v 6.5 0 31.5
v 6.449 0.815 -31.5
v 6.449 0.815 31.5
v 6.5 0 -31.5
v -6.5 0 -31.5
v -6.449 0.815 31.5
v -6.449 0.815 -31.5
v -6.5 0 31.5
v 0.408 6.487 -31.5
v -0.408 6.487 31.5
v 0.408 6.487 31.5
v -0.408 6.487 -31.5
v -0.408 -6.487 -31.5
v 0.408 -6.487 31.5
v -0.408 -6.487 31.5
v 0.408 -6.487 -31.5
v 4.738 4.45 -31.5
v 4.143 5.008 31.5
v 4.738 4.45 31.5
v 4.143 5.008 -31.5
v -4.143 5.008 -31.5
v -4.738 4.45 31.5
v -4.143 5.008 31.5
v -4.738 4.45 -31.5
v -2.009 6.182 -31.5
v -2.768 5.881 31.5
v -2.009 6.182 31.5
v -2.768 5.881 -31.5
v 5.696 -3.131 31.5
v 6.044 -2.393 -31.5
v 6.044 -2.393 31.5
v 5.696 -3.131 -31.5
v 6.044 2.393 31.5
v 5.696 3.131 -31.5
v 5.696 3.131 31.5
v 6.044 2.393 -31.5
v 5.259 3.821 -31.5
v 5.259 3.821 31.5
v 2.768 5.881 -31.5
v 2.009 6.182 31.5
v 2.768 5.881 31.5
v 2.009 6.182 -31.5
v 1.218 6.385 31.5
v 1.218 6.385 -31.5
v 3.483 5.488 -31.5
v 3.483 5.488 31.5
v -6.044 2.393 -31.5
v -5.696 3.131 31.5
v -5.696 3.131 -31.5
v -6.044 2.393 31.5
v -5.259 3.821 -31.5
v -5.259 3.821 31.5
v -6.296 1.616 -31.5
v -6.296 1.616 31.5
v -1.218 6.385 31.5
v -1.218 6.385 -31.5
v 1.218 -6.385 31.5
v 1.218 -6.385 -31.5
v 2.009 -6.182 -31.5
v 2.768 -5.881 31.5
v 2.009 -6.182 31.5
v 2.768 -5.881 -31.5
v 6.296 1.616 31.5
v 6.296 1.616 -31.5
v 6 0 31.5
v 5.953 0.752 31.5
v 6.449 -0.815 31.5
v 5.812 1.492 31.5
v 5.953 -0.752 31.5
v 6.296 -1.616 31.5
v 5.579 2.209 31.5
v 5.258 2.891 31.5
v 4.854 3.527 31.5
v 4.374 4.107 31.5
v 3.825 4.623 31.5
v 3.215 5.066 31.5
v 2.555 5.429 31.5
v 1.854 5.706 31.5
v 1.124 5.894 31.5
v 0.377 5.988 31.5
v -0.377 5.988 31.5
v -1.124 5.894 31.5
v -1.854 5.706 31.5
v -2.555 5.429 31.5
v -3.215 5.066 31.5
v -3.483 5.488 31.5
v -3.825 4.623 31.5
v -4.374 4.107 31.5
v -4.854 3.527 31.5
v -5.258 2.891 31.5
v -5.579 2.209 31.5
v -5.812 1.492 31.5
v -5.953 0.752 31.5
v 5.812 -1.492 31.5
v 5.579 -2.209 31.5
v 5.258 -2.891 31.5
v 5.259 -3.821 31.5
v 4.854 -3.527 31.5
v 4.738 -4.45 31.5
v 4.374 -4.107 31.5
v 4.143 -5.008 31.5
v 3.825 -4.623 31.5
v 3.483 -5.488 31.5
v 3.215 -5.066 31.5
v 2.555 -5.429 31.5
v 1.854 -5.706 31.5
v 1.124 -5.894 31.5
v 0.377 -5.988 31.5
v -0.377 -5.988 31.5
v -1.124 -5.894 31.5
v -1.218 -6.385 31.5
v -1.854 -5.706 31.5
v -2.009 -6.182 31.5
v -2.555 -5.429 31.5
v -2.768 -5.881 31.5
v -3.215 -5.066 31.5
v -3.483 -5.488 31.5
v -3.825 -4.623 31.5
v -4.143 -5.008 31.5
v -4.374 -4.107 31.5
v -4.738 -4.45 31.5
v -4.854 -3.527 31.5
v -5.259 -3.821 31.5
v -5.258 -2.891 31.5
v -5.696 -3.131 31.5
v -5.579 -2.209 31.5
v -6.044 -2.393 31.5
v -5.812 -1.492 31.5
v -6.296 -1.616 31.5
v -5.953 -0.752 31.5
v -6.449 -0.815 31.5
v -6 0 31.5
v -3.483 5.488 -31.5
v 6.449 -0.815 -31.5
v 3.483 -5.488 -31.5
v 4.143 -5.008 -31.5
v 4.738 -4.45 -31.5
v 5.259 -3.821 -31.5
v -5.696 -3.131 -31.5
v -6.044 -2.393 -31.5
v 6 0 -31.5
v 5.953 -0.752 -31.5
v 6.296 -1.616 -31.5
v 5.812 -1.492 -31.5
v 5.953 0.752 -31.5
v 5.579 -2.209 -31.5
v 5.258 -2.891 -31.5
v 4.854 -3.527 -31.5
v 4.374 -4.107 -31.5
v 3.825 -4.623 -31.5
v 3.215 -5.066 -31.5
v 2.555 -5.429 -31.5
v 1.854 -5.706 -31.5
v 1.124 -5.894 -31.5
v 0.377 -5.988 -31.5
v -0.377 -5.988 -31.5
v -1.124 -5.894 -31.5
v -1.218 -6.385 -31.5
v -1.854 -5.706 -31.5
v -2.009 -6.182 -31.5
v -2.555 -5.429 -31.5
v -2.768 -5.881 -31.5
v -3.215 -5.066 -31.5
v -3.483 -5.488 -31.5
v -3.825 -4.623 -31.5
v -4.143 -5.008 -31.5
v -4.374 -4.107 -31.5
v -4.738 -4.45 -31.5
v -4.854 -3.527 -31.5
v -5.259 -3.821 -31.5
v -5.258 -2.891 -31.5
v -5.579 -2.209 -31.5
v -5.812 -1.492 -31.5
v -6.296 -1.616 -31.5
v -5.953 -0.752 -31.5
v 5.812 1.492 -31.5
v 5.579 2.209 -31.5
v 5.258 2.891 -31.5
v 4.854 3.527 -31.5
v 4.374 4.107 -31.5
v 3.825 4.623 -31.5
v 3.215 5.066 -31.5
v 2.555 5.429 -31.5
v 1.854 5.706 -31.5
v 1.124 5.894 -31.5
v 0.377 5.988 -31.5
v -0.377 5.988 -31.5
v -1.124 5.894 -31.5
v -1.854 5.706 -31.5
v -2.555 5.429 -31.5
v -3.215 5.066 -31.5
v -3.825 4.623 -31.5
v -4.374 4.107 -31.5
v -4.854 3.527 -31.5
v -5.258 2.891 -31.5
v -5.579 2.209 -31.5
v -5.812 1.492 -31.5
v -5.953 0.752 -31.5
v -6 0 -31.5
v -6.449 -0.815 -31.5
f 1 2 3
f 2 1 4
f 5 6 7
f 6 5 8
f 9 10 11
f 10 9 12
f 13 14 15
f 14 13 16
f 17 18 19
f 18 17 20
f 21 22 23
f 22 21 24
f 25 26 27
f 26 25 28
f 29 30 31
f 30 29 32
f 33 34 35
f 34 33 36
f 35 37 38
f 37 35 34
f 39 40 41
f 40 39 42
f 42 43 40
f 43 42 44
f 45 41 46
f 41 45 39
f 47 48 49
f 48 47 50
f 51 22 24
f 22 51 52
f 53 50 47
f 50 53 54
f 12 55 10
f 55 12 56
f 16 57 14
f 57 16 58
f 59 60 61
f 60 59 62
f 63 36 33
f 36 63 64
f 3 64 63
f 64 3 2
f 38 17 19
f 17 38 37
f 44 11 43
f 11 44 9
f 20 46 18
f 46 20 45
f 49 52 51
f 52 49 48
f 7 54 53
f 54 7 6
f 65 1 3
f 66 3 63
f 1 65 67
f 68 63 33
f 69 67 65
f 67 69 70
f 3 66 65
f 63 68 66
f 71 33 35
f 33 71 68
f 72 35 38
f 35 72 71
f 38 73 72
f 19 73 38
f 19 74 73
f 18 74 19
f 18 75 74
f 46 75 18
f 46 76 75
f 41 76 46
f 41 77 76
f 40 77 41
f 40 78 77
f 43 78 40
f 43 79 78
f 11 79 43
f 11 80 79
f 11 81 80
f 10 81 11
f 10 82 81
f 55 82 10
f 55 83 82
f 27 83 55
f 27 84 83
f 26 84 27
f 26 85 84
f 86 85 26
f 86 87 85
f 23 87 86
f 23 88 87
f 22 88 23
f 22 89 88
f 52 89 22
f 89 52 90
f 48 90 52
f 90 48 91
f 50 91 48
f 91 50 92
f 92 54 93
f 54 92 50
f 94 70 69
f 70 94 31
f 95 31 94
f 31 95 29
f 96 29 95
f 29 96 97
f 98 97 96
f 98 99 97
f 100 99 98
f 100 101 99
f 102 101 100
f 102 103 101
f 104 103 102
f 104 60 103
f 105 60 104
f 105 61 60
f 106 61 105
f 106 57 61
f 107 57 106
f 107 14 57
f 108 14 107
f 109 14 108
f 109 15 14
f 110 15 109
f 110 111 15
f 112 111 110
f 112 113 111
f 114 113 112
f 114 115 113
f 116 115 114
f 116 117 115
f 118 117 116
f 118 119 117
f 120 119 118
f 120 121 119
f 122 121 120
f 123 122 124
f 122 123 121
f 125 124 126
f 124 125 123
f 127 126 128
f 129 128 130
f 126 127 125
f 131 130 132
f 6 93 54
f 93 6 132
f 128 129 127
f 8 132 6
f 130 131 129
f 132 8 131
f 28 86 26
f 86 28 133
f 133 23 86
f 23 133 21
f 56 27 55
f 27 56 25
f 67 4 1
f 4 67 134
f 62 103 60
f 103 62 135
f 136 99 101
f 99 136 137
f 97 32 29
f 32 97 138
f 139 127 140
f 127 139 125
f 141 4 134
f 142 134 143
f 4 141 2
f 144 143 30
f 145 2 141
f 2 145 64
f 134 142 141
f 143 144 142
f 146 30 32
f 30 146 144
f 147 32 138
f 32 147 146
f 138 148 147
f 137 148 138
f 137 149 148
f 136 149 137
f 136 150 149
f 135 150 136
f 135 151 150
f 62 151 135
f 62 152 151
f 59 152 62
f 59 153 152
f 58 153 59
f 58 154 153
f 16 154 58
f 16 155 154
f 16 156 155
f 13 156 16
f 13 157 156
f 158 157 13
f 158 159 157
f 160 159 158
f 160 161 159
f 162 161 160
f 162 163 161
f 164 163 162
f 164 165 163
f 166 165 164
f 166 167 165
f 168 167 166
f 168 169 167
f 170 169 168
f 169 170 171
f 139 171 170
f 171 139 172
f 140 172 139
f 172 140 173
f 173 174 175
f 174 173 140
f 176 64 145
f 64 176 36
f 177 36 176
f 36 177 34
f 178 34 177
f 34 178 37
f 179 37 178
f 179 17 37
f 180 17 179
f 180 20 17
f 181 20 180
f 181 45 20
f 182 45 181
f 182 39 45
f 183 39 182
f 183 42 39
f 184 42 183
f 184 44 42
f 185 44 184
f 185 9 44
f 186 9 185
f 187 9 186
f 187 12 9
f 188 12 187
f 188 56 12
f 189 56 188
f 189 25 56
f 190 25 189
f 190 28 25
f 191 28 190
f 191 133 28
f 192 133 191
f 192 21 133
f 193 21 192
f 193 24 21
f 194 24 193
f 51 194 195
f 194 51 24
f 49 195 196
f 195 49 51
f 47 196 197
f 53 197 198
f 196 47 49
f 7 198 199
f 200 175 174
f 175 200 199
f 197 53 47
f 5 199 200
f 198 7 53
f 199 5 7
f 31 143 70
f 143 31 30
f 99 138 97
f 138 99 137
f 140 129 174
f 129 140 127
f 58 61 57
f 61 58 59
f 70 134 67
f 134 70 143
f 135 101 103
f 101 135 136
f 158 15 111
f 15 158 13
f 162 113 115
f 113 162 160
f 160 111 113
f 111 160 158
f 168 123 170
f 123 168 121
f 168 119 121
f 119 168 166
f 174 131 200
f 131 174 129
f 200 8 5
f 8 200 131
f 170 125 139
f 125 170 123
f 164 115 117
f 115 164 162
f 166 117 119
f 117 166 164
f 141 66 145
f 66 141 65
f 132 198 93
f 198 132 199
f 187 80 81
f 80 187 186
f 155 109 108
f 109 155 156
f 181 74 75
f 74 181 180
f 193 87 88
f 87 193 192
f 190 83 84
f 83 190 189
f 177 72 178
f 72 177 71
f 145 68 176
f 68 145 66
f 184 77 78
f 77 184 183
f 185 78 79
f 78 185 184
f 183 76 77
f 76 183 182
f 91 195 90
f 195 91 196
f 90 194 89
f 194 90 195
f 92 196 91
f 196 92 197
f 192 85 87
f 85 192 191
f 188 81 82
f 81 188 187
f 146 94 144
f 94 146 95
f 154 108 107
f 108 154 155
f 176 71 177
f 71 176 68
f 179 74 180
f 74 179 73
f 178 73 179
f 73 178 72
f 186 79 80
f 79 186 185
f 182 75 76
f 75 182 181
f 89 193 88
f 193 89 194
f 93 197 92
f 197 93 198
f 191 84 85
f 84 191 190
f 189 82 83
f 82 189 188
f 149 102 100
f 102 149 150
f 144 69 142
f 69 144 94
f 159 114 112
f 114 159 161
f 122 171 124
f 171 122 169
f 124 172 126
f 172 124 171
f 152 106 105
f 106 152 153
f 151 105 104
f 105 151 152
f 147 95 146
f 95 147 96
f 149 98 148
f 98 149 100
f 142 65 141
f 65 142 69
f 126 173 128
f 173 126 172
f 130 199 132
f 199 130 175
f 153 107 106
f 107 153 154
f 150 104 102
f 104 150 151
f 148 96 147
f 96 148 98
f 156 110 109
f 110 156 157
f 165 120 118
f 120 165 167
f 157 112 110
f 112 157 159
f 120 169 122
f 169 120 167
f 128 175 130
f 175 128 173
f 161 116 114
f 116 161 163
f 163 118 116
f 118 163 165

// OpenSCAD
$fn = 50;


difference() {
	union() {
		translate(v = [0, 0, -31.5000000000]) {
			cylinder(h = 63, r = 6.5000000000);
		}
	}
	union() {
		translate(v = [0, 0, -100.0000000000]) {
			cylinder(h = 200, r = 6);
		}
	}
}
